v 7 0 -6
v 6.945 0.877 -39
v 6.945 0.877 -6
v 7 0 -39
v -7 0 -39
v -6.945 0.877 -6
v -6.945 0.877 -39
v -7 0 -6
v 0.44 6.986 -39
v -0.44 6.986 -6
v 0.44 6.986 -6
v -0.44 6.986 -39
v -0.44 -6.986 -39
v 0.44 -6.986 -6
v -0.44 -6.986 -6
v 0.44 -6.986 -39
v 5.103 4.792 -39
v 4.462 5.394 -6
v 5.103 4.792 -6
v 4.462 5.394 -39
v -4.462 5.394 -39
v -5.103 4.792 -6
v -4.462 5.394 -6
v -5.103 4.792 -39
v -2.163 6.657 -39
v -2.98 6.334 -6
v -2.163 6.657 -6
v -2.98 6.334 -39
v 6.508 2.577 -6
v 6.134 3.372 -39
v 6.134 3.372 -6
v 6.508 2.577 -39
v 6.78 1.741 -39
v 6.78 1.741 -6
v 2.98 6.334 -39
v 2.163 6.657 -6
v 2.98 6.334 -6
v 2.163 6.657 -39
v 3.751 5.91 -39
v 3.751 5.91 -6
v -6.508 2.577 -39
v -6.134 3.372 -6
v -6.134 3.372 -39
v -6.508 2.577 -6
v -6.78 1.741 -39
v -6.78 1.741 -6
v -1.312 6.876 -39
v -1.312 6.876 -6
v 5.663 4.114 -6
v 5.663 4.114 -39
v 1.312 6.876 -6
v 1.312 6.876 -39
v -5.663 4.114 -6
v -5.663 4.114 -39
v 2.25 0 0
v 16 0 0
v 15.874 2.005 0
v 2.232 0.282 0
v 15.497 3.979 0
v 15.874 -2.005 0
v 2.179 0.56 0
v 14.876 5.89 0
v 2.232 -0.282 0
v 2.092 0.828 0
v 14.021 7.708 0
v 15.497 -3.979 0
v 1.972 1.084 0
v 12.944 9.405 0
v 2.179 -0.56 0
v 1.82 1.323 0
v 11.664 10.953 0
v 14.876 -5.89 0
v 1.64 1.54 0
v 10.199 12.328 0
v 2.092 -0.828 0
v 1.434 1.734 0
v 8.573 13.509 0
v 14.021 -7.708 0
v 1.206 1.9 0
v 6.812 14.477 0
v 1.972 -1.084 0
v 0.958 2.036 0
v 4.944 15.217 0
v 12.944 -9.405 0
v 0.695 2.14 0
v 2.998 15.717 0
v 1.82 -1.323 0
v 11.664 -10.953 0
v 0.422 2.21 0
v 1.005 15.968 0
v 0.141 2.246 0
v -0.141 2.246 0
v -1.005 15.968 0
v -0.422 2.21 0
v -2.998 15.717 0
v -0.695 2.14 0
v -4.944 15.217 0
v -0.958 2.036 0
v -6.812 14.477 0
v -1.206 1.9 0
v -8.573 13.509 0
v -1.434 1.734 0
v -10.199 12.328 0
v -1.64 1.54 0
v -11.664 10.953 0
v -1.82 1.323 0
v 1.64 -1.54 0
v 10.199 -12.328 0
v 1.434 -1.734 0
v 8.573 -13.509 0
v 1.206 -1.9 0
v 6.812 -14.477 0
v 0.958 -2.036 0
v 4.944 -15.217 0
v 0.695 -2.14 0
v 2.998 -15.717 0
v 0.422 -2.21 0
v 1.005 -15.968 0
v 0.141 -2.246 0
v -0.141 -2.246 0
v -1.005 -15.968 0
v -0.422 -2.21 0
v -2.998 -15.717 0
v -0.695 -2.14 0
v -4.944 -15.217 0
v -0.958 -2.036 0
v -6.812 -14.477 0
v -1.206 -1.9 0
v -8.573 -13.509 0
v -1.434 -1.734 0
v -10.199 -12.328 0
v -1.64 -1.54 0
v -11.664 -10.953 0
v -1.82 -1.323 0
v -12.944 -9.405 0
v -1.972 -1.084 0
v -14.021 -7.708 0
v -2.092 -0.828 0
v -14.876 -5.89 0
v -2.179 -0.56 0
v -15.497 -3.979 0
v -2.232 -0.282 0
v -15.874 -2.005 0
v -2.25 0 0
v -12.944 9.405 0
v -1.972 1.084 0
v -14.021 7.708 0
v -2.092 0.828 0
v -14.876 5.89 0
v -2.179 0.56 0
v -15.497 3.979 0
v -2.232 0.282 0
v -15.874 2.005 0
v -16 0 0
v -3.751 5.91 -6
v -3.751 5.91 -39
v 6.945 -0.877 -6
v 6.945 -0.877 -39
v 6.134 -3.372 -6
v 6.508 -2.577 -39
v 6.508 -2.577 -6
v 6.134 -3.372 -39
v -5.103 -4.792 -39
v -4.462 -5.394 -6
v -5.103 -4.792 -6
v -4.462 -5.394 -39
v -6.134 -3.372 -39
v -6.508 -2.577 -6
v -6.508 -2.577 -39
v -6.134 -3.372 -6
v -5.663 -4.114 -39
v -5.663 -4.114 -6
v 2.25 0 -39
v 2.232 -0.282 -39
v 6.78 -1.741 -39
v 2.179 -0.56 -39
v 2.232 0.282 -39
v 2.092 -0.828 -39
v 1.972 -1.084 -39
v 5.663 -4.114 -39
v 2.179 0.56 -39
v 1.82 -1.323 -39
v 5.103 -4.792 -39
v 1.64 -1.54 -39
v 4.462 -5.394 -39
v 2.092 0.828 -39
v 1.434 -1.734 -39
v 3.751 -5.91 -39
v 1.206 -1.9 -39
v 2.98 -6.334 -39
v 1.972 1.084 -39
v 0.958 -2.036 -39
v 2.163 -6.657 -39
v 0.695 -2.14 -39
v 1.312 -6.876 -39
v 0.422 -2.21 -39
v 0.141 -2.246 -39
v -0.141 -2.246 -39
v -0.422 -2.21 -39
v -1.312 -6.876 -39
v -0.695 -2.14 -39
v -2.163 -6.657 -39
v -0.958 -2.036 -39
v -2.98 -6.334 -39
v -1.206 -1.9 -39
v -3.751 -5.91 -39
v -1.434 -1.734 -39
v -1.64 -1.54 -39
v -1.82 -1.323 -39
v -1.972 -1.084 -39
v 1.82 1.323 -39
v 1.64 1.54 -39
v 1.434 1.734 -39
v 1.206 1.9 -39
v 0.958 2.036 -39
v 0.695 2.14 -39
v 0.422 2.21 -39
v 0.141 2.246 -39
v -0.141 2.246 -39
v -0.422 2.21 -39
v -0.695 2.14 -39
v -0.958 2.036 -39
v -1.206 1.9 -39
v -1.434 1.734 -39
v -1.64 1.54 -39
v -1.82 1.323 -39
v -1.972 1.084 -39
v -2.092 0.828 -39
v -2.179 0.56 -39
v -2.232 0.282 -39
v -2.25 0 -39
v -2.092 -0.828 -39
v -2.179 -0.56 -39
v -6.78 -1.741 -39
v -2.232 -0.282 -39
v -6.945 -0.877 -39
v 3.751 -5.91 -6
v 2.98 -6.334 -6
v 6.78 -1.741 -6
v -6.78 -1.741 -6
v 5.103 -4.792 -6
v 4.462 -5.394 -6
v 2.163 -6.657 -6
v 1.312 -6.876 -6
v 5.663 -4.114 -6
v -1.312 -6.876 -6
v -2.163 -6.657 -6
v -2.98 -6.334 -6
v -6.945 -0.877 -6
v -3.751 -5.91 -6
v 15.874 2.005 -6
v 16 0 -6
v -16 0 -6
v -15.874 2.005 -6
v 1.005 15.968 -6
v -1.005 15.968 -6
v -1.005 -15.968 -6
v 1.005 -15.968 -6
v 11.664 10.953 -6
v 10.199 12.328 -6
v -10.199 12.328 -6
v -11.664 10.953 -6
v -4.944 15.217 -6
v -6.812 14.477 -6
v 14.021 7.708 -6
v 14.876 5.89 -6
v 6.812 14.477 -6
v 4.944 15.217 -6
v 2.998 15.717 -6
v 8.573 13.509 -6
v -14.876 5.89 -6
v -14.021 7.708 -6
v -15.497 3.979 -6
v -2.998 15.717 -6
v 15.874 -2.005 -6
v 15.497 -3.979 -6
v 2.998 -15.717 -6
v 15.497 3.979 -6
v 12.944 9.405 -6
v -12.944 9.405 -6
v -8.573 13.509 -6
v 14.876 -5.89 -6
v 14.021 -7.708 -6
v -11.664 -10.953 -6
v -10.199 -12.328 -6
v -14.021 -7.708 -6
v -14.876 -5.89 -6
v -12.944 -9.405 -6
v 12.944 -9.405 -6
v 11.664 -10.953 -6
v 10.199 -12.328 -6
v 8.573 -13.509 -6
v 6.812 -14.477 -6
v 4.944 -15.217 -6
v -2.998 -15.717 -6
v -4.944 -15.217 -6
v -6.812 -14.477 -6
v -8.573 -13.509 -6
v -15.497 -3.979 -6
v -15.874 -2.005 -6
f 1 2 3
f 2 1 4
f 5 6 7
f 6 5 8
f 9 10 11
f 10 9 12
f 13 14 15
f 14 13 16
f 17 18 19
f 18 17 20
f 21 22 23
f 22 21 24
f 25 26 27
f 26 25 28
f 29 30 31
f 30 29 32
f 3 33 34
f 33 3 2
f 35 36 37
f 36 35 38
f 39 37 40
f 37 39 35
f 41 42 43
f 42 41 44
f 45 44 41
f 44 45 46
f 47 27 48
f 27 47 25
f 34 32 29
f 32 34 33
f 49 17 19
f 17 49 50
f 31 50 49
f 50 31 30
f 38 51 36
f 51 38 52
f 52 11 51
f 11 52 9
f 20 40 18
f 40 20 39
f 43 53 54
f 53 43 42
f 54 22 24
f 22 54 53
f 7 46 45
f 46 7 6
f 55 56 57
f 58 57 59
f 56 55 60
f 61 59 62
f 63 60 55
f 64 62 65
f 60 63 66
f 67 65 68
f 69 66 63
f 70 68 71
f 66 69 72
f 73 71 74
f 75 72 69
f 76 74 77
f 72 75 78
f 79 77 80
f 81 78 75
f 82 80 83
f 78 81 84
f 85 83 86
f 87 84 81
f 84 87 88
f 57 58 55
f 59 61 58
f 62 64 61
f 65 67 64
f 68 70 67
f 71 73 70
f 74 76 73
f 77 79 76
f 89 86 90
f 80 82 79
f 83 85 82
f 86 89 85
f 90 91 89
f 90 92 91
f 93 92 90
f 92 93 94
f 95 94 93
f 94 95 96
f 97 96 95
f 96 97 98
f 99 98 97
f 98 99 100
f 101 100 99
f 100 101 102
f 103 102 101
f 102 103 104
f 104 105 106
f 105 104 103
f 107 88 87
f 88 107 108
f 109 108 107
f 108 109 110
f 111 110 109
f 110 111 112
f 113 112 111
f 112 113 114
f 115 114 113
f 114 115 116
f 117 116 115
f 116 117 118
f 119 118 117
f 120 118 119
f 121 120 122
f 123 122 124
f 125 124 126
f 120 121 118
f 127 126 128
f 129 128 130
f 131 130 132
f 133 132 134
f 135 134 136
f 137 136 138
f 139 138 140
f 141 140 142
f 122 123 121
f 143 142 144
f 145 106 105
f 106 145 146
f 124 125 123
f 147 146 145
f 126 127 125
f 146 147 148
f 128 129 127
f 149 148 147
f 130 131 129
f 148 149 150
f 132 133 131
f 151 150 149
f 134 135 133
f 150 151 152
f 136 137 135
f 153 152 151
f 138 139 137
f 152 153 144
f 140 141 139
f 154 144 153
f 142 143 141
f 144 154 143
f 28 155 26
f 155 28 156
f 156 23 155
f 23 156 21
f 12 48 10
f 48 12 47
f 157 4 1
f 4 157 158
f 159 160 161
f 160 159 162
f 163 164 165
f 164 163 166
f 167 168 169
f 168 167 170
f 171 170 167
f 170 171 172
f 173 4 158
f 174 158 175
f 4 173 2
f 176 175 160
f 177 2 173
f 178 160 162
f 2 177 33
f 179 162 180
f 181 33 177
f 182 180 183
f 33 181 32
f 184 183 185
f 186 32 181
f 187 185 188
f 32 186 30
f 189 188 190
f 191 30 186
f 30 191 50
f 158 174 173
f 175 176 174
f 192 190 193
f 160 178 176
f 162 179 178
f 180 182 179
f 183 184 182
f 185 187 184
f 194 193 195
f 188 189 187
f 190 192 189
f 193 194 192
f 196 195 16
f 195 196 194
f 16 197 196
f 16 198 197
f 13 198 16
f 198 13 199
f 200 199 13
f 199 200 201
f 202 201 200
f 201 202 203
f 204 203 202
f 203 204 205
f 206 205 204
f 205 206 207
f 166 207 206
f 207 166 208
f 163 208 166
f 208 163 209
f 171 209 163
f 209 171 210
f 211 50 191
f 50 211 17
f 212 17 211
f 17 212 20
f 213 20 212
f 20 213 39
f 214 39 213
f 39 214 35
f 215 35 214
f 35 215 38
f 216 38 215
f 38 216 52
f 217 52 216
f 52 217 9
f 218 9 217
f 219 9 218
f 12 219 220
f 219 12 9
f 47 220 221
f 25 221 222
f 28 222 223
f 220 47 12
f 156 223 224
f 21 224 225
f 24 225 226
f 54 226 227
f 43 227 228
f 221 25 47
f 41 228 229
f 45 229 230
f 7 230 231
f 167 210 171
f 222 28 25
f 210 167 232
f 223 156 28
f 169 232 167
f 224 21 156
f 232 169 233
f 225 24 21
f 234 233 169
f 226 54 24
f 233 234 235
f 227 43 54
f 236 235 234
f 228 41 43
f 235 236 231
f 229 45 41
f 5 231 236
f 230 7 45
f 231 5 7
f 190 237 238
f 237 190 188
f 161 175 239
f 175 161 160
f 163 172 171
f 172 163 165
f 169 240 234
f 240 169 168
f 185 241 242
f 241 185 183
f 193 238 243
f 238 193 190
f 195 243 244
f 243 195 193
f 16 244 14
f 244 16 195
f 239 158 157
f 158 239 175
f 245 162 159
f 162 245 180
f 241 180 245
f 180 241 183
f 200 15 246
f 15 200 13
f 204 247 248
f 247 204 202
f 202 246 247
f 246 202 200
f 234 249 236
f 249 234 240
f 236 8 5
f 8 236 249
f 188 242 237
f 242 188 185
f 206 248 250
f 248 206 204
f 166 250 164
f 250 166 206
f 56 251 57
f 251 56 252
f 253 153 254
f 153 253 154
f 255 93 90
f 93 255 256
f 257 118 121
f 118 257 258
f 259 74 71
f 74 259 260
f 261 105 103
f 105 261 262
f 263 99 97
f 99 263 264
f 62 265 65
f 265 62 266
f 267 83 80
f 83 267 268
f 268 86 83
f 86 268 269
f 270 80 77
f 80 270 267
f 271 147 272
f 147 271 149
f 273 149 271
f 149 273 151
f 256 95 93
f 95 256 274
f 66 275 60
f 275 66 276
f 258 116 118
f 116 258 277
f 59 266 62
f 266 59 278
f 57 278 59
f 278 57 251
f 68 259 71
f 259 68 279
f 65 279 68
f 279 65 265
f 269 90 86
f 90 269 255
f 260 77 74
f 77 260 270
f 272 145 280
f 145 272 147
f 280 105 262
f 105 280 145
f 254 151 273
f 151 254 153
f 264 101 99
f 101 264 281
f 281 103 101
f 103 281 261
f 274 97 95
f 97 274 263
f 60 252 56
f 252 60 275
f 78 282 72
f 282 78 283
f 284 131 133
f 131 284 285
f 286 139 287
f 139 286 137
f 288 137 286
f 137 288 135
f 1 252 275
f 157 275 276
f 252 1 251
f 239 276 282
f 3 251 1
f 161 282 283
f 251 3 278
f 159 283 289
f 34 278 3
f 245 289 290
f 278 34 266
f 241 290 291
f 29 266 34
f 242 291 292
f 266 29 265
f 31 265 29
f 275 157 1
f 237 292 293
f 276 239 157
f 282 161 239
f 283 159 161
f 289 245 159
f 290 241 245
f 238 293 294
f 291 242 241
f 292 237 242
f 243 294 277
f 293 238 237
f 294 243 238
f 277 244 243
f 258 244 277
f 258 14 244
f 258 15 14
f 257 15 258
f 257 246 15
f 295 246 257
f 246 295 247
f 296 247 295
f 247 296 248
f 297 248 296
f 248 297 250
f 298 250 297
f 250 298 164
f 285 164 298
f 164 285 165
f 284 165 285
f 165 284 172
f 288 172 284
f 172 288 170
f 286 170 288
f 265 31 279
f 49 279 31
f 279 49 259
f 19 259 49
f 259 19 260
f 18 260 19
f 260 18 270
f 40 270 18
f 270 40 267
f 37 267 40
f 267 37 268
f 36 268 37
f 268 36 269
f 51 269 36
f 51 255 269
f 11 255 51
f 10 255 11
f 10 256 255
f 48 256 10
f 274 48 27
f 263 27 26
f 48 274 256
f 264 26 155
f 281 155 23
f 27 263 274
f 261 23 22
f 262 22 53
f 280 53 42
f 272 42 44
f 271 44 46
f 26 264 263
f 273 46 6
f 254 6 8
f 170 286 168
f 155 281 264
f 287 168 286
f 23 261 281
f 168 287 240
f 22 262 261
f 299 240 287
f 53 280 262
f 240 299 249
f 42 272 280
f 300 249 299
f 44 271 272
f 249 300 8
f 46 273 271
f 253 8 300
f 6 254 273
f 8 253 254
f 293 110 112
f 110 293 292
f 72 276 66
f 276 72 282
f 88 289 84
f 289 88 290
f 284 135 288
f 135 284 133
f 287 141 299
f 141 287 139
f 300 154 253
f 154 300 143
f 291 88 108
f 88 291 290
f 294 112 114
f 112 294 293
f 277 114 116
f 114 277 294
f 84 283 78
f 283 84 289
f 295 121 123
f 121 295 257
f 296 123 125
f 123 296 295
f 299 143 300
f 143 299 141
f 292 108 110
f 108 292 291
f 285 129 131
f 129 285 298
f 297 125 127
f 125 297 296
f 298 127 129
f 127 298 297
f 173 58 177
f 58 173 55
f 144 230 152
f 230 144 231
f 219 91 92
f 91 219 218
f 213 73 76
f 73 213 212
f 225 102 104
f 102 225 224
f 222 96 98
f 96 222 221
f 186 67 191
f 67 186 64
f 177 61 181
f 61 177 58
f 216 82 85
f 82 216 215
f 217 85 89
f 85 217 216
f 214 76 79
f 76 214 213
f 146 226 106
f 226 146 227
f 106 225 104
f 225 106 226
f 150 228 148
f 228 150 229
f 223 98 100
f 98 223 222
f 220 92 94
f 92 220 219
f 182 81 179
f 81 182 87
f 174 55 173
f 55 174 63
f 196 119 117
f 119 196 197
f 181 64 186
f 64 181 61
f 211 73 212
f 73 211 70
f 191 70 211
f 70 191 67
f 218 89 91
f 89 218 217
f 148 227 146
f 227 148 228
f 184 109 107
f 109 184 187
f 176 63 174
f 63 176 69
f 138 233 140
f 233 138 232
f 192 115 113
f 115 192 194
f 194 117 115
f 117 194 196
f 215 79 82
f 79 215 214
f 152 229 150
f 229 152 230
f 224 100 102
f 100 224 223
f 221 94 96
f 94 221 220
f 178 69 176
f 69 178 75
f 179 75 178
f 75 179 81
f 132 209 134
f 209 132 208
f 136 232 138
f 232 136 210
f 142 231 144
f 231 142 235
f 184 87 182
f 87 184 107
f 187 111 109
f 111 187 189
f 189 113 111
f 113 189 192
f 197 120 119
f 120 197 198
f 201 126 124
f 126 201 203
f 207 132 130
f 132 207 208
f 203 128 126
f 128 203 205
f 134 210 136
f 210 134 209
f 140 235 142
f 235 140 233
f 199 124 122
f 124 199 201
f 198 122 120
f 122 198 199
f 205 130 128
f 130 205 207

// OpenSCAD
$fn = 50;


difference() {
	union() {
		translate(v = [0, 0, -39.0000000000]) {
			cylinder(h = 39, r = 7.0000000000);
		}
		translate(v = [0, 0, -6.0000000000]) {
			cylinder(h = 6, r = 16.0000000000);
		}
	}
	union() {
		#translate(v = [0, 0, -39]) {
			cylinder(h = 39, r = 2.2500000000);
		}
	}
}
